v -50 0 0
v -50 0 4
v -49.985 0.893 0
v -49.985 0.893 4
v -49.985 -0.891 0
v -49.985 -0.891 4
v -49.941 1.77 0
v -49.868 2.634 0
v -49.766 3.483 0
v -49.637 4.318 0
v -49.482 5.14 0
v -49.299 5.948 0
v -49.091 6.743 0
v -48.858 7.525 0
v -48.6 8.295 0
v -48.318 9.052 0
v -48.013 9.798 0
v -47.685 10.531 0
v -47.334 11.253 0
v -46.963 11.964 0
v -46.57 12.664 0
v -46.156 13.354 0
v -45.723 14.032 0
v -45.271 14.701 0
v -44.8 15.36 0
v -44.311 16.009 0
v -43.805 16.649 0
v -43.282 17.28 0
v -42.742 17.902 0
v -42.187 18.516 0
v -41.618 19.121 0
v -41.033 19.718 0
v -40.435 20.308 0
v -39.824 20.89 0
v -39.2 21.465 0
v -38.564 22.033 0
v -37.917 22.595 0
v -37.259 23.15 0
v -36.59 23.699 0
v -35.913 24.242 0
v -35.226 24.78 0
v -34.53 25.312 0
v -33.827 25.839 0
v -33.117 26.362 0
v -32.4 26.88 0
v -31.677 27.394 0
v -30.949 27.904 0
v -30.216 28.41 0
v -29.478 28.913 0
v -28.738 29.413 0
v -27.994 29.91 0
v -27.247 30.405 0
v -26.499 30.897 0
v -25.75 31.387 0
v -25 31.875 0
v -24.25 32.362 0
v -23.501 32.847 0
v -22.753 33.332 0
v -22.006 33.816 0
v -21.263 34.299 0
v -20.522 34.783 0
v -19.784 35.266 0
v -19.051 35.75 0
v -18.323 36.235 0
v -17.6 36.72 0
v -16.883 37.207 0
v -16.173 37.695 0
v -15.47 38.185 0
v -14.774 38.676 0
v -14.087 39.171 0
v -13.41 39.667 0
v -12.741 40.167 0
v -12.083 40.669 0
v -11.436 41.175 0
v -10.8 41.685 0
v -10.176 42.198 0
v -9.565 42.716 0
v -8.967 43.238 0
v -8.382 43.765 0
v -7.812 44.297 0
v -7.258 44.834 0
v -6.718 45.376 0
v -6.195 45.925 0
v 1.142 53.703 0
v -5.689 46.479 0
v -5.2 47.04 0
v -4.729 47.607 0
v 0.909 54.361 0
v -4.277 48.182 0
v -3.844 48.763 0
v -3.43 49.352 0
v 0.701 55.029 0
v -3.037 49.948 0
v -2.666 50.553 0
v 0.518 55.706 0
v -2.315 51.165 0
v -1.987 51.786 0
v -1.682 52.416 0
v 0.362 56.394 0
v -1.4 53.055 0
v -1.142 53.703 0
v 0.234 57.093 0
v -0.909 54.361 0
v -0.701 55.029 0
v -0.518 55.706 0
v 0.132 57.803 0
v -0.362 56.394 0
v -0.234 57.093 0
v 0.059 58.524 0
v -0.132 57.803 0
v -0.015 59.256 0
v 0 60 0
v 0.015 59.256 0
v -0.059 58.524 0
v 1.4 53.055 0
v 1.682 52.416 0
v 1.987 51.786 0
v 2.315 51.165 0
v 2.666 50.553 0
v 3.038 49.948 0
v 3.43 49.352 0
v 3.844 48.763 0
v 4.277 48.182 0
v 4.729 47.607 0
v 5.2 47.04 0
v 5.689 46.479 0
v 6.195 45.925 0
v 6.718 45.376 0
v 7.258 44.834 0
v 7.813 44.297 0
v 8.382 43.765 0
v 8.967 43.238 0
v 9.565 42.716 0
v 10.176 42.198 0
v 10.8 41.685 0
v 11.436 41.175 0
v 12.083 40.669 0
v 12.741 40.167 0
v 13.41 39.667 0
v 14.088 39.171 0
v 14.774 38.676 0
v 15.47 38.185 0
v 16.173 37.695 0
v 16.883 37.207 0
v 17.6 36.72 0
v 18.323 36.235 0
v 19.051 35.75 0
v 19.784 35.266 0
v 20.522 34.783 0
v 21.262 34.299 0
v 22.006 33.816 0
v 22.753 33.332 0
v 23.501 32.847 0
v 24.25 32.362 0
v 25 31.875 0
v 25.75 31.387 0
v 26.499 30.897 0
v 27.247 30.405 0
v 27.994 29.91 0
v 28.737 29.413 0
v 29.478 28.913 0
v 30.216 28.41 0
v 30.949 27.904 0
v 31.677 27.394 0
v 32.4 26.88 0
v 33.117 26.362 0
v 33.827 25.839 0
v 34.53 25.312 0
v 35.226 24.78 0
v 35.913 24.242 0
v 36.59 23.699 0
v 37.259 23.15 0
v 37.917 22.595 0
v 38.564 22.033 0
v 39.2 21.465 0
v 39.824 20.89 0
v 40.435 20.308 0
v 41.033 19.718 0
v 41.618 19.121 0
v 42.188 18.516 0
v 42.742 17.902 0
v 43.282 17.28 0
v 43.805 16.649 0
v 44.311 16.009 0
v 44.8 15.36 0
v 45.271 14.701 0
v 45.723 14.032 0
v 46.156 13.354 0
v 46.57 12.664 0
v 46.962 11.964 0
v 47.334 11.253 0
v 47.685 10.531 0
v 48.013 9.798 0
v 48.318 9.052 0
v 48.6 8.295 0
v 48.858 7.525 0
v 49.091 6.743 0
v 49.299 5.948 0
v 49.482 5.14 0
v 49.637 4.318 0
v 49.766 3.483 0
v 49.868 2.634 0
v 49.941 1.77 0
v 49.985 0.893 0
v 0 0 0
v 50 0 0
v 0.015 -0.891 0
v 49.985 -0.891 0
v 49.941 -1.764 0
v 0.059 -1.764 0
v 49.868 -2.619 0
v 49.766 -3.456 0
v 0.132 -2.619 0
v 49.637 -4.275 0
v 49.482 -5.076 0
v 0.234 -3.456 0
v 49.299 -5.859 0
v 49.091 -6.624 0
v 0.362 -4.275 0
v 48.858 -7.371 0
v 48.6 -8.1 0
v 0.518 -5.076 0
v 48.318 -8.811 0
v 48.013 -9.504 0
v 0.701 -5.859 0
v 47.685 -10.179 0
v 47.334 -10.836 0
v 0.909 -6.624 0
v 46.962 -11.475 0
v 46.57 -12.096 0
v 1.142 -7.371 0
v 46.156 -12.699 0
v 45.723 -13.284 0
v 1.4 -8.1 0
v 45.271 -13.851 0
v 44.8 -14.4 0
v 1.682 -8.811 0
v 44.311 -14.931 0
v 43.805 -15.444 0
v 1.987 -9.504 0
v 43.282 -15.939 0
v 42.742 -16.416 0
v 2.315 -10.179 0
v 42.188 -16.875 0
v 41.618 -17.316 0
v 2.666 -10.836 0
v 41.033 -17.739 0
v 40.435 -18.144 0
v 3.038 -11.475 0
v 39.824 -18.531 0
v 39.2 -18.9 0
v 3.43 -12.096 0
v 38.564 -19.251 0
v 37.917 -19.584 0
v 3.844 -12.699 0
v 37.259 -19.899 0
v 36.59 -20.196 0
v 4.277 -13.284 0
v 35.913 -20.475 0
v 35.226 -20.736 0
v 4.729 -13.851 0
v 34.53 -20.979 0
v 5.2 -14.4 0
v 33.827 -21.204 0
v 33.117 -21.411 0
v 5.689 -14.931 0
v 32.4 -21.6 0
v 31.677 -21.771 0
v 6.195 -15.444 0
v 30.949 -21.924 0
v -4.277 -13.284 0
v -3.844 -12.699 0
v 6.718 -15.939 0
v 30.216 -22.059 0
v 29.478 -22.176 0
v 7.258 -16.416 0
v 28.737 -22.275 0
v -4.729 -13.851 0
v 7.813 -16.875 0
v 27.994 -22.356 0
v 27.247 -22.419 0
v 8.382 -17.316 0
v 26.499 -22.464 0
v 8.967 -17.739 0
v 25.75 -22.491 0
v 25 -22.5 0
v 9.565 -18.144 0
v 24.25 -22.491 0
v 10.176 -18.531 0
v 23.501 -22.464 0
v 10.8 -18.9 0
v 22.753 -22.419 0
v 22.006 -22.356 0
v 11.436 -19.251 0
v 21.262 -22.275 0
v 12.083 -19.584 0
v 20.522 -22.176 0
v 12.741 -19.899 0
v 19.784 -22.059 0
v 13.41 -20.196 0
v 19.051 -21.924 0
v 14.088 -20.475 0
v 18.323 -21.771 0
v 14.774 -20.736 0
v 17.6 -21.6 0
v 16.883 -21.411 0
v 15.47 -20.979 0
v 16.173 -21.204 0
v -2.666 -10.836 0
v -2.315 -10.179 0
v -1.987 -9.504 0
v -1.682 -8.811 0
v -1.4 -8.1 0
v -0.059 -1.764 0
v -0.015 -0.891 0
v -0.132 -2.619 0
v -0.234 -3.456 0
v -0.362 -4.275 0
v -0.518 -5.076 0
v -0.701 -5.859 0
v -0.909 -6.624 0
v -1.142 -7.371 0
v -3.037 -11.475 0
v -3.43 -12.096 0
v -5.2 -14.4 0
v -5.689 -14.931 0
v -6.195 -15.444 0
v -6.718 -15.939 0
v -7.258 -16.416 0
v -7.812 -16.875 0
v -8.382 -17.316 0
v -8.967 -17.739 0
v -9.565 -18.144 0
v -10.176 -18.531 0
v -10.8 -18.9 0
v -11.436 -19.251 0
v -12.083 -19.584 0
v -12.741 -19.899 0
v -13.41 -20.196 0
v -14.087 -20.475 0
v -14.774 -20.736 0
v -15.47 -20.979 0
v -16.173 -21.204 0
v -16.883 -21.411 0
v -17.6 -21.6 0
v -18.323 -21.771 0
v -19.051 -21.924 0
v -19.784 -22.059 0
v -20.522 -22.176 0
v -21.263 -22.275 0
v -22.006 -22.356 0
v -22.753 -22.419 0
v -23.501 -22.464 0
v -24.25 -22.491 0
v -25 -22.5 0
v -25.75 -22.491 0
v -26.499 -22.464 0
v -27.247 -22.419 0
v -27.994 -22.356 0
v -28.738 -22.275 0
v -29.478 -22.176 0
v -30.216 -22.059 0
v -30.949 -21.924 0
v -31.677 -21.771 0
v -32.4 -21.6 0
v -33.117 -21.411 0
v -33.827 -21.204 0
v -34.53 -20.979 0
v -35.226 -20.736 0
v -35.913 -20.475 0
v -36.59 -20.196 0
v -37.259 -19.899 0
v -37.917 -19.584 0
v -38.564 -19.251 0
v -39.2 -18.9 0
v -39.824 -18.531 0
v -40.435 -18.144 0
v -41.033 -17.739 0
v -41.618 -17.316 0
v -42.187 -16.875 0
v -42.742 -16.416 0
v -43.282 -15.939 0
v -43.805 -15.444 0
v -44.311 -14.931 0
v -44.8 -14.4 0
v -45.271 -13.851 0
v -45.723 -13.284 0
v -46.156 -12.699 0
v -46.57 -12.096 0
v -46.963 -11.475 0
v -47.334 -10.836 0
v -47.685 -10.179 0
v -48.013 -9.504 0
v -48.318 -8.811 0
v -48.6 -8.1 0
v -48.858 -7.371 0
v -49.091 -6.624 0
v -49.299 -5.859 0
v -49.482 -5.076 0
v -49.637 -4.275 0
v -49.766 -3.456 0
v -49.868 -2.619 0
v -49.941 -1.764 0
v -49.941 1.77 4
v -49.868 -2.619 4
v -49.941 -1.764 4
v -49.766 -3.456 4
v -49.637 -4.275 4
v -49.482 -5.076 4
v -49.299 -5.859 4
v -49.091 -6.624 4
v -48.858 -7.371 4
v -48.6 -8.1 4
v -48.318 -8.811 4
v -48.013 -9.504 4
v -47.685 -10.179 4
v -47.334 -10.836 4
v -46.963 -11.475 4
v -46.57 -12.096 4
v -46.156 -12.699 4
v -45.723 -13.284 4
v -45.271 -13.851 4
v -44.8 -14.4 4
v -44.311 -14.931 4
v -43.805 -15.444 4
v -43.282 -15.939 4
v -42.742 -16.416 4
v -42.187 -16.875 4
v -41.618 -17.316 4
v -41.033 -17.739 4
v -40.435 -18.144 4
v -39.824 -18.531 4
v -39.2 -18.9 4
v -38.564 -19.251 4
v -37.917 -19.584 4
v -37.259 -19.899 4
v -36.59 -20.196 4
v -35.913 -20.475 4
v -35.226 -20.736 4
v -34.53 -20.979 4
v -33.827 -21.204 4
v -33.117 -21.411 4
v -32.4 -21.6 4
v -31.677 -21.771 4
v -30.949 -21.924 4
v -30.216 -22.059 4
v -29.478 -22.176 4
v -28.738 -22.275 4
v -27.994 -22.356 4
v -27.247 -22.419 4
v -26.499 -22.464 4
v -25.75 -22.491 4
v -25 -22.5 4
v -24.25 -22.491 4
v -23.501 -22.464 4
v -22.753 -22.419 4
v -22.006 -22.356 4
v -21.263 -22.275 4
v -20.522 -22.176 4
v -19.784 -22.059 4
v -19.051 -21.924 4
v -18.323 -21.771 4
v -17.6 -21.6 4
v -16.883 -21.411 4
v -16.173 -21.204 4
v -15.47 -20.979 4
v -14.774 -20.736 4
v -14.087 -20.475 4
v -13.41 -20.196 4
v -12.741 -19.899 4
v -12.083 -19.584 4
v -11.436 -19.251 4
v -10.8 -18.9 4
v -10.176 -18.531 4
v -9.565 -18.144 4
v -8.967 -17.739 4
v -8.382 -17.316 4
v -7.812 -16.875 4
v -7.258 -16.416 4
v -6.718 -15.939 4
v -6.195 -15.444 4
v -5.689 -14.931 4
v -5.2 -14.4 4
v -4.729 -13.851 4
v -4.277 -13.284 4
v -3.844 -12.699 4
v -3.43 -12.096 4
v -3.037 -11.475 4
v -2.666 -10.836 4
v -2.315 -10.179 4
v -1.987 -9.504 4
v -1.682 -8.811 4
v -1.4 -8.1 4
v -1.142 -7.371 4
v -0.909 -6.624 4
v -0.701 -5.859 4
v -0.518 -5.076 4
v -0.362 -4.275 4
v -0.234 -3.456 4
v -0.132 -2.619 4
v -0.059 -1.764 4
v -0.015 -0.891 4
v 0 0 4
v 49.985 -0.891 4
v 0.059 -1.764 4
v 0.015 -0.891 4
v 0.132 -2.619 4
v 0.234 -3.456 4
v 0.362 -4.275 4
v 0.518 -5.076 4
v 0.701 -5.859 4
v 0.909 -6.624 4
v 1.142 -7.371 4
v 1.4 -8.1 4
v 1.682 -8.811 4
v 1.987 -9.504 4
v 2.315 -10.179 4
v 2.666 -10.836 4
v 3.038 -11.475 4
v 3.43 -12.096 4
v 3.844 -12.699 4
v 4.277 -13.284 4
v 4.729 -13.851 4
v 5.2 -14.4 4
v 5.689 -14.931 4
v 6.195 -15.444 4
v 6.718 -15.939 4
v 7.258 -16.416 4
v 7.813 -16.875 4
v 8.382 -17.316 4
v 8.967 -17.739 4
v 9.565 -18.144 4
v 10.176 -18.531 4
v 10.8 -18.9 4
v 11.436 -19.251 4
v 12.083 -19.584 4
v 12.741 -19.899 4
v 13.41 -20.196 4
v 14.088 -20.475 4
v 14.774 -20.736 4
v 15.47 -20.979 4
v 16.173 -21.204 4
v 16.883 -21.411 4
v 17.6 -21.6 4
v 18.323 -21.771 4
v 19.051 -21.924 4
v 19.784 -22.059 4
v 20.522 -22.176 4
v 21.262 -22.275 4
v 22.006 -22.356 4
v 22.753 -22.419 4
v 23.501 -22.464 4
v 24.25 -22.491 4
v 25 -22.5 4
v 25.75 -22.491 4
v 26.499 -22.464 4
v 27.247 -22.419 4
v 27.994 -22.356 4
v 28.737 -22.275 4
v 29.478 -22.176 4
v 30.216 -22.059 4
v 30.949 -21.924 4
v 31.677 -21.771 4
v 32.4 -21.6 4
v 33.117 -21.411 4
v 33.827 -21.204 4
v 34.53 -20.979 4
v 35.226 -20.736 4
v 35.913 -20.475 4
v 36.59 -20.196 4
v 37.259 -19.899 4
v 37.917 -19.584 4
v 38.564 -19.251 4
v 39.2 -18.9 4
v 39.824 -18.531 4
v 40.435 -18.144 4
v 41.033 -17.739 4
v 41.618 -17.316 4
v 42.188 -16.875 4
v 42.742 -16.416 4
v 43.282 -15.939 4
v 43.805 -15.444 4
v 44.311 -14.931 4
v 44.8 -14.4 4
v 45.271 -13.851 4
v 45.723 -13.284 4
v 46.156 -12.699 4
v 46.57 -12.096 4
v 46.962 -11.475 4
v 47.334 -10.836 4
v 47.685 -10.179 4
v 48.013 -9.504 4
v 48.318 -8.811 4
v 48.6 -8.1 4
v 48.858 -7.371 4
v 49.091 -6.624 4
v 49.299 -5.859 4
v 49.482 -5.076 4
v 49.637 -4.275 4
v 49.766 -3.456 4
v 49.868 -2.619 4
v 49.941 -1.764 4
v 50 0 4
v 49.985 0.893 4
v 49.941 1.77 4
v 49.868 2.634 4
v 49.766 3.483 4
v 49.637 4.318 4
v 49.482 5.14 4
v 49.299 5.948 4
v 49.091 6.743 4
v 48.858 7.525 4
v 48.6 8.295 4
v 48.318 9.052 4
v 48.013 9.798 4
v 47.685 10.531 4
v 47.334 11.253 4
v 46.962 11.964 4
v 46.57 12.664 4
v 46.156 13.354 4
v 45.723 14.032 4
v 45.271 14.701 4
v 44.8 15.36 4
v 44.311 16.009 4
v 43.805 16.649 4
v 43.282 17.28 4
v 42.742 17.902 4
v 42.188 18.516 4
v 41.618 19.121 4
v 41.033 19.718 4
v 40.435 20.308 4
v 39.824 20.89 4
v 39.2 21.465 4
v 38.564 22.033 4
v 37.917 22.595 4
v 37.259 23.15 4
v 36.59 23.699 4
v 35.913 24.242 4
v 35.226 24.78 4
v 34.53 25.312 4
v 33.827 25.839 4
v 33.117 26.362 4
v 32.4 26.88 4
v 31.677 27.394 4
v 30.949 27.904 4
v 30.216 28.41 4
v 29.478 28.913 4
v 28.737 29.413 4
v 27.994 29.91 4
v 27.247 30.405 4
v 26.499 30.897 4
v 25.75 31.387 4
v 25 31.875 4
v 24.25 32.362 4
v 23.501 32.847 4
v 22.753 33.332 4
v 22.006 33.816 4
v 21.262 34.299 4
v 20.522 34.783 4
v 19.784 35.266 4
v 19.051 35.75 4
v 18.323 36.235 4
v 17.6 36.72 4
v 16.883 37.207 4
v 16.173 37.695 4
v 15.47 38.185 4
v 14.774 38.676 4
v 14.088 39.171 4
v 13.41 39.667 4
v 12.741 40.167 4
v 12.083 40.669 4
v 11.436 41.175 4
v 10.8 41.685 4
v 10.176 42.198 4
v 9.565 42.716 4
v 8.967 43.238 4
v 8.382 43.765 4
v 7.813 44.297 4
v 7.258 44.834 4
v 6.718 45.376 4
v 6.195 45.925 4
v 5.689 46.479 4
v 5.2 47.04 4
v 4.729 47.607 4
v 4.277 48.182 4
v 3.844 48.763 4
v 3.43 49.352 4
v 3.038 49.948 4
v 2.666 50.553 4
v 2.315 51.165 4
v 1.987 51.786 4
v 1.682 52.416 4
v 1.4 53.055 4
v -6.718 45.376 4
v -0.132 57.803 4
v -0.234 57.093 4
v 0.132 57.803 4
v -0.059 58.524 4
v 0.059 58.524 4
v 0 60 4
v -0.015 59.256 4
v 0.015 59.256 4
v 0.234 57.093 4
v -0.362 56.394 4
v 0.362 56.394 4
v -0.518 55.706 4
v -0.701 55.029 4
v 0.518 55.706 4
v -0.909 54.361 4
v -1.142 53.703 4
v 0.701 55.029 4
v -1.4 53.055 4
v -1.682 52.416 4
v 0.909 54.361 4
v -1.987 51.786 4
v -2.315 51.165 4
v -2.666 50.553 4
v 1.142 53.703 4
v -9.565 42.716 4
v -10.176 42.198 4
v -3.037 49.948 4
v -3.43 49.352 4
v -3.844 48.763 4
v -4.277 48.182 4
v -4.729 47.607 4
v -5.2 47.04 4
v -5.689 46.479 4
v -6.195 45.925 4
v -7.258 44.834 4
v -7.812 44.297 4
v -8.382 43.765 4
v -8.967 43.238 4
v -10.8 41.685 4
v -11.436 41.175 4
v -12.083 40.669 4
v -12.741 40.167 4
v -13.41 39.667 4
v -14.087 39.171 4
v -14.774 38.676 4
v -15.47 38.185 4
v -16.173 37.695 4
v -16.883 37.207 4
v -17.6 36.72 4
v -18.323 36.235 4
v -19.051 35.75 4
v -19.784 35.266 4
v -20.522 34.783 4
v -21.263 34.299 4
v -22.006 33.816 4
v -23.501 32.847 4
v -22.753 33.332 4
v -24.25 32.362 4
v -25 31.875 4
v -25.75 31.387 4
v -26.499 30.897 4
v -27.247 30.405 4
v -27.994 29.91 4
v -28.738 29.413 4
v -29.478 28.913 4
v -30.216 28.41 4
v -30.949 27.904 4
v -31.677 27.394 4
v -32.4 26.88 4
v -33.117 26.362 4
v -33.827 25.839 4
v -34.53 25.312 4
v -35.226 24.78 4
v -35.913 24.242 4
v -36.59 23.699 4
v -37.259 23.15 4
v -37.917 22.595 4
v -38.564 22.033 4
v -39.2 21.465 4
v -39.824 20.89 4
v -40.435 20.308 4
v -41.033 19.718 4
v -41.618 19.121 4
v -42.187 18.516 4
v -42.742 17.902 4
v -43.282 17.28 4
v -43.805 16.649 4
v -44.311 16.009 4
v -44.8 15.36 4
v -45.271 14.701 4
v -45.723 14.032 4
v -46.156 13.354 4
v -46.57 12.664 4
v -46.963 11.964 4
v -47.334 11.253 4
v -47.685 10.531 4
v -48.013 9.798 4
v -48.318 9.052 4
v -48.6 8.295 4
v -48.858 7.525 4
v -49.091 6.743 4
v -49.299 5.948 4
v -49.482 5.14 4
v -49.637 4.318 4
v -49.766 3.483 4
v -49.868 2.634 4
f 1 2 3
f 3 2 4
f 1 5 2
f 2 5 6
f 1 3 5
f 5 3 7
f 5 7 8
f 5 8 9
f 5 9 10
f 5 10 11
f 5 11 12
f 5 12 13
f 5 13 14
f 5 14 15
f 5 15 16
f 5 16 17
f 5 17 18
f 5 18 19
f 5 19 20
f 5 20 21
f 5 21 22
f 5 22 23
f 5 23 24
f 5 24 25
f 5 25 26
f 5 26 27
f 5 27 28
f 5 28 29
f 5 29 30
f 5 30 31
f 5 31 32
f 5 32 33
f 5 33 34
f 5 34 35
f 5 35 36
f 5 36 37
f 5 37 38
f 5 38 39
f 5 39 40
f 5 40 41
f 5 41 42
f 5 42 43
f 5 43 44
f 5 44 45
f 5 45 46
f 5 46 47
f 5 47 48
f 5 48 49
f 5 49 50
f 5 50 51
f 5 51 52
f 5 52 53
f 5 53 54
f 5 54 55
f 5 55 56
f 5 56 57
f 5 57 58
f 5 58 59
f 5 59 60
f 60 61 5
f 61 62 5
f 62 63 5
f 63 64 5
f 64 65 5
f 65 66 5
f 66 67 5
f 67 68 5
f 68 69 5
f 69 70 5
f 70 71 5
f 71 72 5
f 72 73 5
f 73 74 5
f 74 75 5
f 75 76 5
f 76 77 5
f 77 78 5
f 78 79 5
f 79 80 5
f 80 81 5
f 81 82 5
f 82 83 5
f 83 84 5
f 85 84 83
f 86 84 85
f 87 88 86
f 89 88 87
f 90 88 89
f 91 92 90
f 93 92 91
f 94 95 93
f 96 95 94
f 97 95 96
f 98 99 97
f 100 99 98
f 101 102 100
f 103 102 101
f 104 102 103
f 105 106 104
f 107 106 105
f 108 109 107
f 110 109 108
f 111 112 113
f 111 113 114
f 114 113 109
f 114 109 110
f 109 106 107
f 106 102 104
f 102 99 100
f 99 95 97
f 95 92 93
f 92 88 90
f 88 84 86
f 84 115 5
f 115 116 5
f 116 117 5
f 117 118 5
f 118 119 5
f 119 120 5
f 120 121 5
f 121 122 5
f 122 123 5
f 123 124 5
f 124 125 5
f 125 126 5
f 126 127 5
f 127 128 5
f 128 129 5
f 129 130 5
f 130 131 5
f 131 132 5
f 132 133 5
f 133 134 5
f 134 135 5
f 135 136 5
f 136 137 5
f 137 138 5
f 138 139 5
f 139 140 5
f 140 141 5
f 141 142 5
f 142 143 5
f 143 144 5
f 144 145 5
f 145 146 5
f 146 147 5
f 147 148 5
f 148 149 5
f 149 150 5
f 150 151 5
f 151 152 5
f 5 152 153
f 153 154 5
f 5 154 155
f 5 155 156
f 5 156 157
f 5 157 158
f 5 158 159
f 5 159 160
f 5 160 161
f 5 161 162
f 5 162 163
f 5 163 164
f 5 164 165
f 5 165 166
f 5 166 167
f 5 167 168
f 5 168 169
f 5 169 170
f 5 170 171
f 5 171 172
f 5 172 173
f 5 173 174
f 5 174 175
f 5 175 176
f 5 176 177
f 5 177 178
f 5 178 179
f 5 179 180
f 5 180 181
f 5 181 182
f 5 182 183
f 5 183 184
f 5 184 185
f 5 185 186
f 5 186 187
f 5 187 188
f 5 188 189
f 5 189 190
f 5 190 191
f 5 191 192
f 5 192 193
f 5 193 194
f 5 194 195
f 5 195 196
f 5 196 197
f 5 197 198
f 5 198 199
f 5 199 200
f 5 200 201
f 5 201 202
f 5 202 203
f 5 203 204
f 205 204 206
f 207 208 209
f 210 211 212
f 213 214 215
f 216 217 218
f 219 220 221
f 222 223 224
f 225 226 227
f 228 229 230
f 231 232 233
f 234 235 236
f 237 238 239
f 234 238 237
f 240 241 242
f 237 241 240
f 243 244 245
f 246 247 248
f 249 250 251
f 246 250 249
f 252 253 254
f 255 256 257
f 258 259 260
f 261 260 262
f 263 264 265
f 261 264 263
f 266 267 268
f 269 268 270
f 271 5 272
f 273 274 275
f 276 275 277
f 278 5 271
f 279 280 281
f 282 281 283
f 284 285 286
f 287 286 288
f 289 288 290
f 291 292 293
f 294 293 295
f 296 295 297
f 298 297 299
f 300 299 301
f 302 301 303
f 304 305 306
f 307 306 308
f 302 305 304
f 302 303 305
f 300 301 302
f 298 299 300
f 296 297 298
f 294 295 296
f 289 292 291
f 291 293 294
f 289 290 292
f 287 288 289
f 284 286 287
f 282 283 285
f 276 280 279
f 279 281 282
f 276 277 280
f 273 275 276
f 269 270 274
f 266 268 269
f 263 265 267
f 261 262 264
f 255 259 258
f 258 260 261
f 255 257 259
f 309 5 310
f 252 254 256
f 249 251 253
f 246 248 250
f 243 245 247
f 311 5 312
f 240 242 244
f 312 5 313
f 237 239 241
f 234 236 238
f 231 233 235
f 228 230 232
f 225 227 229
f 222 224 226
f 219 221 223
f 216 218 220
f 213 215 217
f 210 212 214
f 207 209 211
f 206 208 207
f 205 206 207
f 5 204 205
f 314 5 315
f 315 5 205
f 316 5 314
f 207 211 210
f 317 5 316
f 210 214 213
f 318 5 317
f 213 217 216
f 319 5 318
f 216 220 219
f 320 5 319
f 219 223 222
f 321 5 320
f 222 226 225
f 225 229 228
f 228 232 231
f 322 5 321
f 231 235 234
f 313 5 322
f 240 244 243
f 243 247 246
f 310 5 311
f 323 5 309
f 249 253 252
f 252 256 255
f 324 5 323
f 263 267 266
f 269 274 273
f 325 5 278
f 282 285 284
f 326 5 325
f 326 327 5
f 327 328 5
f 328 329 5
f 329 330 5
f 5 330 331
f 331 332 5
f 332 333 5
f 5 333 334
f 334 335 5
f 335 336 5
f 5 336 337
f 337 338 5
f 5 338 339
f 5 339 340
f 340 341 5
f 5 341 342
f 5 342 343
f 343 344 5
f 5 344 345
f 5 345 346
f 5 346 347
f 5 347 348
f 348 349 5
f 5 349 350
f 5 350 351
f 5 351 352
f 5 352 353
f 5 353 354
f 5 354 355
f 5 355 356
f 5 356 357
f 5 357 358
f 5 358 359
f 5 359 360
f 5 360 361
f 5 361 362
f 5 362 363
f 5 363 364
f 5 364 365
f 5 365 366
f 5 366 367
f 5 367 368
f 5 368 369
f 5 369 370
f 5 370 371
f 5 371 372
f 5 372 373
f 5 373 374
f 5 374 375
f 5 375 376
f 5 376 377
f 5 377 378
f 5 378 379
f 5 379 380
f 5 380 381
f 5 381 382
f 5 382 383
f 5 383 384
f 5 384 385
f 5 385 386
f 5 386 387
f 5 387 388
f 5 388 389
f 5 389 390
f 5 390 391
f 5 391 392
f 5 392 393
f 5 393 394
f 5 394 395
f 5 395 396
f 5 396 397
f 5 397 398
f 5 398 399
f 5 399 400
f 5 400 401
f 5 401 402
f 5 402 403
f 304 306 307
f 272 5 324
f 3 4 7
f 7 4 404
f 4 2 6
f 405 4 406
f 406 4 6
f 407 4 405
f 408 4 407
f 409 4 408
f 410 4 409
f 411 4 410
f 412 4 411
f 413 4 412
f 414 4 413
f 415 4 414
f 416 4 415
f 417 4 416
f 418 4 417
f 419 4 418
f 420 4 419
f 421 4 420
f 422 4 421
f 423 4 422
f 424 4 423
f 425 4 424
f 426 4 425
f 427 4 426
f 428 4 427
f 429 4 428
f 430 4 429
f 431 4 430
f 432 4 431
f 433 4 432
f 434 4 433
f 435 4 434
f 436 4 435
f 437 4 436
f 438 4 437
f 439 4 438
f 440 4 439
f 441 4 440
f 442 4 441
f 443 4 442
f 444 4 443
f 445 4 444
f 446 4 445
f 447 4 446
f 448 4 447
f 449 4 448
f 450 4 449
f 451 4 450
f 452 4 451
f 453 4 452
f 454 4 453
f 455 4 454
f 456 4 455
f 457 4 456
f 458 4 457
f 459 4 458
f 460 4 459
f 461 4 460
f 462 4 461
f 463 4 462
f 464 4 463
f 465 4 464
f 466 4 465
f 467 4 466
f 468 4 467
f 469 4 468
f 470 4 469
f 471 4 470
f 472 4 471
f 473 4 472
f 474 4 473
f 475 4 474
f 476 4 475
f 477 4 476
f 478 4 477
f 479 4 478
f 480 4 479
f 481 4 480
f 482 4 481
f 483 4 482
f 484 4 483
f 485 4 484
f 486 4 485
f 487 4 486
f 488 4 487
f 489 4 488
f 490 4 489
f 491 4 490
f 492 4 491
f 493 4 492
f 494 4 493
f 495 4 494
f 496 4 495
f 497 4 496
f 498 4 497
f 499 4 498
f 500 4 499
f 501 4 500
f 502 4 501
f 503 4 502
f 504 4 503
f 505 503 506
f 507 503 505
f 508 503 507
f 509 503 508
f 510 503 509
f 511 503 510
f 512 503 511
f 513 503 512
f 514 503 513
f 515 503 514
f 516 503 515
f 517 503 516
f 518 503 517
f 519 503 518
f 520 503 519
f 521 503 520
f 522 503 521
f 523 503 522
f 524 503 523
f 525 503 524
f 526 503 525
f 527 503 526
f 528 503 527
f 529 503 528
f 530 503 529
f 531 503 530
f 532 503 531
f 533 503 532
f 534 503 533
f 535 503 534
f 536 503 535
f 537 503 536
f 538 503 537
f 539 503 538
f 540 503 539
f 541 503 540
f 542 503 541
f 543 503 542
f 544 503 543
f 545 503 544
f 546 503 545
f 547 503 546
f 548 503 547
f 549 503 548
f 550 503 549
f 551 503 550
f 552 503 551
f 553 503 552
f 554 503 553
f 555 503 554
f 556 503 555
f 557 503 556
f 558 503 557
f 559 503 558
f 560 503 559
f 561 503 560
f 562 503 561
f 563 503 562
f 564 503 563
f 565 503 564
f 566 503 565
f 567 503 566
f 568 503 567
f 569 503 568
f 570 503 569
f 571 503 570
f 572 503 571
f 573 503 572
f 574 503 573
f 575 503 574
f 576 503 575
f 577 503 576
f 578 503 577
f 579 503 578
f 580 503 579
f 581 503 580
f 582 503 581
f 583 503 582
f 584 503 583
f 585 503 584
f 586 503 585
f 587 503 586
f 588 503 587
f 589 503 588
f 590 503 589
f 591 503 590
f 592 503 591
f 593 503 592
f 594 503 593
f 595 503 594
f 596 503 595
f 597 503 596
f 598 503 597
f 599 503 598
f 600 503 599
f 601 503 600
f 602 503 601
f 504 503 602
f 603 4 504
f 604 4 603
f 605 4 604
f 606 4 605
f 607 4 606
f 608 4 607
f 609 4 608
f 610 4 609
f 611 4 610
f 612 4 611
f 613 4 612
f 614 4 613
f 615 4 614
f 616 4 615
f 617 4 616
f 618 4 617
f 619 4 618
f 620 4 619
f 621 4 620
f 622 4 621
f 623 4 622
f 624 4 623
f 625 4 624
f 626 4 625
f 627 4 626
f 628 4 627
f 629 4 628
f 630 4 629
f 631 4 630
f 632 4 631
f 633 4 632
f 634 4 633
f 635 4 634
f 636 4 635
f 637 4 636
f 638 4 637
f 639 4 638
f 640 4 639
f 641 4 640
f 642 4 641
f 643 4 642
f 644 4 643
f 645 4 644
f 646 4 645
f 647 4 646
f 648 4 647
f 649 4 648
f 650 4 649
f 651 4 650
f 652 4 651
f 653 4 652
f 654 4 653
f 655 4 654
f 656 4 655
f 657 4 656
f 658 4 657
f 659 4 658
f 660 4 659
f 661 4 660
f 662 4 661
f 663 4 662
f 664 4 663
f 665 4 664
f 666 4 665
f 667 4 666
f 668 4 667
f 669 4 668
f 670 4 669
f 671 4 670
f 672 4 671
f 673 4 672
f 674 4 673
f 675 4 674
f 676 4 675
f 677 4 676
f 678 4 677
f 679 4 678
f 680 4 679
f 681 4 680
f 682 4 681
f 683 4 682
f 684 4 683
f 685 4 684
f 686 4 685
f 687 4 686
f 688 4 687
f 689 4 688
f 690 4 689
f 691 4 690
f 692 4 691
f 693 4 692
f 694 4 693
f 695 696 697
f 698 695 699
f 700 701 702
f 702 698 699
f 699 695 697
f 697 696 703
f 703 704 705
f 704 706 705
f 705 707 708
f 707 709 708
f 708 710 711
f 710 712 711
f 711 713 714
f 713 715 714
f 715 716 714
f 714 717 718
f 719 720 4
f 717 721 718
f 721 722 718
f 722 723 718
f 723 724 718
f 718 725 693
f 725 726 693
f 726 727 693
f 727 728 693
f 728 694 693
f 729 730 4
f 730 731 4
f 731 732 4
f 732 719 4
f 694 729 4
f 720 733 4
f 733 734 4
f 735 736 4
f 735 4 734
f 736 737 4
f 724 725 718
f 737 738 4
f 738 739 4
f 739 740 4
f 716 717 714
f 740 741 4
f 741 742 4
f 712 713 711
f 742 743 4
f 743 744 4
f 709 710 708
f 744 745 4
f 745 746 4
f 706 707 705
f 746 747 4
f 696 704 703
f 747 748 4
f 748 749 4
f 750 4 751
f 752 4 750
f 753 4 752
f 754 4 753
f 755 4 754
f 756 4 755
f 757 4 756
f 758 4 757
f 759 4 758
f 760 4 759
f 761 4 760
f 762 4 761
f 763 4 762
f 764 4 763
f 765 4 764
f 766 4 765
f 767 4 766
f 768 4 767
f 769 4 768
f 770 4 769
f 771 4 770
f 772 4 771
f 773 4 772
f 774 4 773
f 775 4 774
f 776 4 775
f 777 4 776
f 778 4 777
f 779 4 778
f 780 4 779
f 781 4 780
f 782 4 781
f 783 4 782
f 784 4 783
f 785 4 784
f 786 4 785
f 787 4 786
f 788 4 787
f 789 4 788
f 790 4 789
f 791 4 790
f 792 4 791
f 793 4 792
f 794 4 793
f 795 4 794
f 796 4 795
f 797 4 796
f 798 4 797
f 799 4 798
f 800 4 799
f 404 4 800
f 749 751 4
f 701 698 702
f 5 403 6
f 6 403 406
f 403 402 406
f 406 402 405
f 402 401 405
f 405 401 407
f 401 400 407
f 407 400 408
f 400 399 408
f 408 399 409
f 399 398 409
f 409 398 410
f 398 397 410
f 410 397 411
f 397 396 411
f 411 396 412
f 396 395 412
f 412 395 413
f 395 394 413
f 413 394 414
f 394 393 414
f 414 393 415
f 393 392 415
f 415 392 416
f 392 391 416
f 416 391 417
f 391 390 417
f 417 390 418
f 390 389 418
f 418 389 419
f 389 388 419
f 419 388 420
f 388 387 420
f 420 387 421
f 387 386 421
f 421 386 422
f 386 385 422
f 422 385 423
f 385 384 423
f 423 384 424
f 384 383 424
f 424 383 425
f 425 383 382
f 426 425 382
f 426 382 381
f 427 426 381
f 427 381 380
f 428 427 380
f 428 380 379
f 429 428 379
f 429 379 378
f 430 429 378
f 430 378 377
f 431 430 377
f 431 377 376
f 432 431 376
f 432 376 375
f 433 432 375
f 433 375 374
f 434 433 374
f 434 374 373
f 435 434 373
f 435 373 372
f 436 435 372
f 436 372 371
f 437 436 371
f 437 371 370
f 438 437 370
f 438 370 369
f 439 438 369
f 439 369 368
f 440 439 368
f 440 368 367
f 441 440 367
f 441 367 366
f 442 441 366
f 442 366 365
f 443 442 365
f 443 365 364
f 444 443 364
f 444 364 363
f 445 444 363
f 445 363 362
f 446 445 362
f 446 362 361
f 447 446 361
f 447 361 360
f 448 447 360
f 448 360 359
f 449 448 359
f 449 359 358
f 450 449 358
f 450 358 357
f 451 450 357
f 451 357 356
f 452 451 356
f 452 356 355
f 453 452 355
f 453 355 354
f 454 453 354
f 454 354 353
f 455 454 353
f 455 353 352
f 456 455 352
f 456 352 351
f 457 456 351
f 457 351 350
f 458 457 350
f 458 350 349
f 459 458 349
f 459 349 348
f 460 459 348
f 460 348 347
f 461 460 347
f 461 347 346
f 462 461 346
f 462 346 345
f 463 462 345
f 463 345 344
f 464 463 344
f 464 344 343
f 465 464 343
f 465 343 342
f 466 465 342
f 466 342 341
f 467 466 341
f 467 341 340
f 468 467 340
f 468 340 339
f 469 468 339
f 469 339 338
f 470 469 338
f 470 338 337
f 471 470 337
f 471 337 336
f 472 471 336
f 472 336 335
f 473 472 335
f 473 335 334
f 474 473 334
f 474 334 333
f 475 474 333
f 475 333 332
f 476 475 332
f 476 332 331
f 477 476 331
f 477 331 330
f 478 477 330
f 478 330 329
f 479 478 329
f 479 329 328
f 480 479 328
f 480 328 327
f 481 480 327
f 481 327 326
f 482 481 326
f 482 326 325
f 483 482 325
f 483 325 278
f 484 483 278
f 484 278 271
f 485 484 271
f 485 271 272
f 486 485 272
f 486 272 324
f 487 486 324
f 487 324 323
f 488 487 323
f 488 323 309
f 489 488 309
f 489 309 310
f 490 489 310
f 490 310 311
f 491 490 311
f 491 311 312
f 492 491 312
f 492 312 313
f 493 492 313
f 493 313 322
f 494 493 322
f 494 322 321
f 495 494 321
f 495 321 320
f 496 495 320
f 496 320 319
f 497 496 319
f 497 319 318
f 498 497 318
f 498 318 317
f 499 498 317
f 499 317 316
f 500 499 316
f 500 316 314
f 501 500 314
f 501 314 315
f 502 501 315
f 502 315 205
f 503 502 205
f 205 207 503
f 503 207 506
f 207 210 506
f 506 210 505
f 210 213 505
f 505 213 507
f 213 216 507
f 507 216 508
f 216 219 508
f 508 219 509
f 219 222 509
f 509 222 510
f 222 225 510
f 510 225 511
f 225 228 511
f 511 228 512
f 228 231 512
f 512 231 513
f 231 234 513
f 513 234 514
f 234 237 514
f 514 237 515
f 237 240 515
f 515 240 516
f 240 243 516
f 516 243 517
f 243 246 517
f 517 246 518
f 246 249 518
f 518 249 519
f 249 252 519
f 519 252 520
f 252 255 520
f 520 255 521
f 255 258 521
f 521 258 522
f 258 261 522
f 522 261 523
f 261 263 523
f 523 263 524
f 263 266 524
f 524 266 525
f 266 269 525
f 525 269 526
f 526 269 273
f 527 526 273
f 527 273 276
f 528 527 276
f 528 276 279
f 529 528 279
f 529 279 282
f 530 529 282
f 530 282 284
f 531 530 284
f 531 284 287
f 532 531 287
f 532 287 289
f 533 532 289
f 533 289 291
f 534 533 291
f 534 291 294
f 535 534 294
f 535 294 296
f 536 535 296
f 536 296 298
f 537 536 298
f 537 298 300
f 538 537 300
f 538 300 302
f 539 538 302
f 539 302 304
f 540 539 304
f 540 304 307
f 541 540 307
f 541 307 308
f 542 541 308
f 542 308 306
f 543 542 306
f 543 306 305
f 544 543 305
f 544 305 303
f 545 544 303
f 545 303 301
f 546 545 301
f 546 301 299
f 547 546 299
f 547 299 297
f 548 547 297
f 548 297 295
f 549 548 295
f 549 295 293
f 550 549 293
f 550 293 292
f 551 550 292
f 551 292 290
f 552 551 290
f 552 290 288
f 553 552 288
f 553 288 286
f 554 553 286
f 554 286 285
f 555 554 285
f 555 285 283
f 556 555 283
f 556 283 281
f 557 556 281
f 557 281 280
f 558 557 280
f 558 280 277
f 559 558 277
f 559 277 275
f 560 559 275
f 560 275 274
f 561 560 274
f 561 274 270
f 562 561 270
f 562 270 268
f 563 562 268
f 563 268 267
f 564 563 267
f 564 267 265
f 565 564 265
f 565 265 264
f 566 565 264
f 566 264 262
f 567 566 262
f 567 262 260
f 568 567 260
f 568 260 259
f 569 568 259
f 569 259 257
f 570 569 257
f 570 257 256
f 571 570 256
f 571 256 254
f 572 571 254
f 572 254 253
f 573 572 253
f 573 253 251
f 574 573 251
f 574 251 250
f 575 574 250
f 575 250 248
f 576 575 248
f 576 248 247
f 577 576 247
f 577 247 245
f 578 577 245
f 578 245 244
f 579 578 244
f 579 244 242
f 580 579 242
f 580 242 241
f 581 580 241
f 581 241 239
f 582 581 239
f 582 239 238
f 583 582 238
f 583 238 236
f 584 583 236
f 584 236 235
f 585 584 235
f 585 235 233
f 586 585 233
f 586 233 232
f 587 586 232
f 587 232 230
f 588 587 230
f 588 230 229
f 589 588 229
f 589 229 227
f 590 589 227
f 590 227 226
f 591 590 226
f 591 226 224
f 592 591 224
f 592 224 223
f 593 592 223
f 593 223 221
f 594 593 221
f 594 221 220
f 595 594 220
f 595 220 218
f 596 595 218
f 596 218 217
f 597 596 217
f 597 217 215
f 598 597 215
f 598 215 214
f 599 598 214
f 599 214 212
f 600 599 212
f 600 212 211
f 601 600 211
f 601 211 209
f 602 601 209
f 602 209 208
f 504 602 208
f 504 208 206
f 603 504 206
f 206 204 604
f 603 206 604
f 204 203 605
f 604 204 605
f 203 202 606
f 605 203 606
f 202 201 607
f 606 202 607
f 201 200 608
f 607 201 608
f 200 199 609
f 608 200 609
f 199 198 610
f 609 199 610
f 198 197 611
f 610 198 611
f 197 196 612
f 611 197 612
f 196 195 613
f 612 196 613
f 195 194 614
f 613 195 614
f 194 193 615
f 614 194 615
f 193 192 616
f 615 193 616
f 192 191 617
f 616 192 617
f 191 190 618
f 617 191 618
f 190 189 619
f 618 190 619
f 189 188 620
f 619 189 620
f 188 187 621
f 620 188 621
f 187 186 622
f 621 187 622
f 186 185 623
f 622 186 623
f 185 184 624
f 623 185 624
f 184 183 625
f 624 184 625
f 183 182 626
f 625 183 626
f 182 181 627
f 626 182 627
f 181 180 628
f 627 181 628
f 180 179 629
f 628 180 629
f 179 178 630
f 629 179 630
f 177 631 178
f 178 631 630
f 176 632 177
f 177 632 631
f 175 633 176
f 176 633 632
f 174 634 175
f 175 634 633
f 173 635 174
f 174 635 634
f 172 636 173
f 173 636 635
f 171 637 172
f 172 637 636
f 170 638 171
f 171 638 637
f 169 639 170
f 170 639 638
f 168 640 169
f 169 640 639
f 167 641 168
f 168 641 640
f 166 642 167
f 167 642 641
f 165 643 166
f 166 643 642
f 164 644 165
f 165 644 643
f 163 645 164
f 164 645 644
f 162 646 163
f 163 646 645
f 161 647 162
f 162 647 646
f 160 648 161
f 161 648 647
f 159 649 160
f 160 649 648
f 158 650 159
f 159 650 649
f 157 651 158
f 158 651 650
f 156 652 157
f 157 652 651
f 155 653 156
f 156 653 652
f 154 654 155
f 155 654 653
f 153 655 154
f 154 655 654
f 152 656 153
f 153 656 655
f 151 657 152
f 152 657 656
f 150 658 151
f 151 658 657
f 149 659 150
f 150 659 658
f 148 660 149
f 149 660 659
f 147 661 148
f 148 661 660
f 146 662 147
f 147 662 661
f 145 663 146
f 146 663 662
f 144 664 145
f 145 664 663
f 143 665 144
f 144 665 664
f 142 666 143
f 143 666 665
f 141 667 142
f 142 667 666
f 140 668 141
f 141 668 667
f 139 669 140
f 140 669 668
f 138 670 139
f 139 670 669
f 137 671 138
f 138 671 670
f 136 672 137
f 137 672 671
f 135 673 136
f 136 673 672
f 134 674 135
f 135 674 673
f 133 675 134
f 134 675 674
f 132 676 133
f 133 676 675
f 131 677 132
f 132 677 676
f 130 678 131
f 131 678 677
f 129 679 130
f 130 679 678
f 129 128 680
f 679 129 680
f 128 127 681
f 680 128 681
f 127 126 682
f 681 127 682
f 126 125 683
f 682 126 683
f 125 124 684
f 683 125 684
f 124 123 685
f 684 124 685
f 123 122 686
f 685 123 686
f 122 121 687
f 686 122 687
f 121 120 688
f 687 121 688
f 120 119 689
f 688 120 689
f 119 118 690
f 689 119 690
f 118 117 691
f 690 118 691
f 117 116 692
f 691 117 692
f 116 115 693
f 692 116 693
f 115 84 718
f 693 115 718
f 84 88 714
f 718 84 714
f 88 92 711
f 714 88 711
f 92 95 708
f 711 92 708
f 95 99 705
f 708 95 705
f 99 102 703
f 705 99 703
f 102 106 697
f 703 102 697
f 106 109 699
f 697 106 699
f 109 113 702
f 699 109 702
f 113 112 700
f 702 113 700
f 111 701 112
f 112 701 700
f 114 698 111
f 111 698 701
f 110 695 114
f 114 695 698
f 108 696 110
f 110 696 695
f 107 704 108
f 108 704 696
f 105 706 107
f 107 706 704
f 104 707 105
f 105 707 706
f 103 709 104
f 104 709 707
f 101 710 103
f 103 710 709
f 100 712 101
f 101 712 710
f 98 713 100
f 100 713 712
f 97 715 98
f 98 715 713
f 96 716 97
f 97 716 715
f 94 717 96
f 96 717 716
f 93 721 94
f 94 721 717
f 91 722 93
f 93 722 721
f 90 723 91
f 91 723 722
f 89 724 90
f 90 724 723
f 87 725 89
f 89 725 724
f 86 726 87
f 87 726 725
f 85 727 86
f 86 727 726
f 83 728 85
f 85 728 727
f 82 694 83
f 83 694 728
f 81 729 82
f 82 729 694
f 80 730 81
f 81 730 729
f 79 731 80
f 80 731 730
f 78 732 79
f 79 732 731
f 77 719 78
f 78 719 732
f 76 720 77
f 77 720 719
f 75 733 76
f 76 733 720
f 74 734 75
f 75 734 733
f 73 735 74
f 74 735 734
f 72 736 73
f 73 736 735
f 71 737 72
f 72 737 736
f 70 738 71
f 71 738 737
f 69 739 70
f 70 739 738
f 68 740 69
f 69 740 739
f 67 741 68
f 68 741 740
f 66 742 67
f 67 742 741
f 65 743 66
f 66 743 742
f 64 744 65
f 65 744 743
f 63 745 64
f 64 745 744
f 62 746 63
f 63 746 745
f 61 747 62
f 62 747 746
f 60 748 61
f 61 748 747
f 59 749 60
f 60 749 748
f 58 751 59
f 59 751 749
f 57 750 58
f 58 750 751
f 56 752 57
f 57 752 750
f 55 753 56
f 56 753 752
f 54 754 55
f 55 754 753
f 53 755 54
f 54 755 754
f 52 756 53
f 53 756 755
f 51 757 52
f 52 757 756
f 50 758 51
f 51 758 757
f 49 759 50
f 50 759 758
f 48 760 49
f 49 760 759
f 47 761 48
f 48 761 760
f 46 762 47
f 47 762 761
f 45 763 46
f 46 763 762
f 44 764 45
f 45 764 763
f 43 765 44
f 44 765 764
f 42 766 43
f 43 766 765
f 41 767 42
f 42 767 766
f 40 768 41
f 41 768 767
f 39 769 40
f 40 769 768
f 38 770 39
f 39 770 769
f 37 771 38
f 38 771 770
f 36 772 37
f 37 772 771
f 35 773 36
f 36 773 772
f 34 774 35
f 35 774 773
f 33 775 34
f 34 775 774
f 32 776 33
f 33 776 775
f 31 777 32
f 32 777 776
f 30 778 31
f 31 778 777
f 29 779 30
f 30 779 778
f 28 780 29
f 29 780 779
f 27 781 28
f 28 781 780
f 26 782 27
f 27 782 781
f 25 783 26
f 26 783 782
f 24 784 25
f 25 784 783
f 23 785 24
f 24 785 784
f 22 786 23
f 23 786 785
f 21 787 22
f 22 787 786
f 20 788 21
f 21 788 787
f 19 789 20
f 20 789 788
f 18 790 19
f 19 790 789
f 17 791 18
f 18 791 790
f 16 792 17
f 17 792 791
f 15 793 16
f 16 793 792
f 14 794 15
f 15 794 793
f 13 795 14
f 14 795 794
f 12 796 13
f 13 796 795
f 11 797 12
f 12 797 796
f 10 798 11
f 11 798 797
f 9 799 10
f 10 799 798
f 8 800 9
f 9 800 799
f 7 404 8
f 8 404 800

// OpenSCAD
// file: bezier.scad
//=====================================
// This is public Domain Code
// Contributed by: William A Adams
// 11 May 2011
//=====================================
joinfactor = 0.125;

gSteps = 4;
gHeight = 4;


//=======================================
// Functions
// These are the 4 blending functions for a cubic bezier curve
//=======================================

/*
	Bernstein Basis Functions

	For Bezier curves, these functions give the weights per control point.
	
*/
function BEZ03(u) = pow((1-u), 3);
function BEZ13(u) = 3*u*(pow((1-u),2));
function BEZ23(u) = 3*(pow(u,2))*(1-u);
function BEZ33(u) = pow(u,3);

// Calculate a singe point along a cubic bezier curve
// Given a set of 4 control points, and a parameter 0 <= 'u' <= 1
// These functions will return the exact point on the curve
function PointOnBezCubic2D(p0, p1, p2, p3, u) = [
	BEZ03(u)*p0[0]+BEZ13(u)*p1[0]+BEZ23(u)*p2[0]+BEZ33(u)*p3[0],
	BEZ03(u)*p0[1]+BEZ13(u)*p1[1]+BEZ23(u)*p2[1]+BEZ33(u)*p3[1]];

function PointOnBezCubic3D(p0, p1, p2, p3, u) = [
	BEZ03(u)*p0[0]+BEZ13(u)*p1[0]+BEZ23(u)*p2[0]+BEZ33(u)*p3[0],
	BEZ03(u)*p0[1]+BEZ13(u)*p1[1]+BEZ23(u)*p2[1]+BEZ33(u)*p3[1],
	BEZ03(u)*p0[2]+BEZ13(u)*p1[2]+BEZ23(u)*p2[2]+BEZ33(u)*p3[2]];

//=======================================
// Modules
//=======================================
// This function will extrude a bezier solid from a bezier curve
// It is a straight up prism
// c - ControlPoints
//
module BezCubicFillet(c, focalPoint, steps=gSteps, height=gHeight)
{
	for(step = [steps:1])
	{
		linear_extrude(height = height, convexity = 10) 
		polygon(
			points=[
				focalPoint,
				PointOnBezCubic2D(c[0], c[1], c[2],c[3], step/steps),
				PointOnBezCubic2D(c[0], c[1], c[2],c[3], (step-1)/steps)],
			paths=[[0,1,2,0]]
		);
	}
}

module BezCubicFilletColored(c, focalPoint, steps=gSteps, height=gHeight, colors)
{
	for(step = [steps:1])
	{
		color(PointOnBezCubic3D(colors[0], colors[1], colors[2], colors[3], step/steps))
		linear_extrude(height = height, convexity = 10) 
		polygon(
			points=[
				focalPoint,
				PointOnBezCubic2D(c[0], c[1], c[2],c[3], step/steps),
				PointOnBezCubic2D(c[0], c[1], c[2],c[3], (step-1)/steps)],
			paths=[[0,1,2,0]]
		);
	}
}


module BezCubicRibbon(c1, c2, steps=gSteps, height=gHeight, colors=[[1,0,0],[1,1,0],[0,1,1],[0,0,1]])
{
	for (step=[0:steps-1])
	{
		color(PointOnBezCubic3D(colors[0], colors[1], colors[2], colors[3], step/steps))
		linear_extrude(height = height, convexity = 10) 
		polygon(
			points=[
				PointOnBezCubic2D(c1[0], c1[1], c1[2],c1[3], step/steps),
				PointOnBezCubic2D(c2[0], c2[1], c2[2],c2[3], (step)/steps),
				PointOnBezCubic2D(c2[0], c2[1], c2[2],c2[3], (step+1)/steps),
				PointOnBezCubic2D(c1[0], c1[1], c1[2],c1[3], (step+1)/steps)],
			paths=[[0,1,2,3]]
		);

	}
}

module BezCubicRibbonRotate(c1, c2, steps=gSteps, height=gHeight, colors=[[1,0,0],[1,1,0],[0,1,1],[0,0,1]])
{
	for (step=[0:steps-1])
	{
		color(PointOnBezCubic3D(colors[0], colors[1], colors[2], colors[3], step/steps))
		rotate_extrude(convexity=10) 
		polygon(
			points=[
				PointOnBezCubic2D(c1[0], c1[1], c1[2],c1[3], step/steps),
				PointOnBezCubic2D(c2[0], c2[1], c2[2],c2[3], (step)/steps),
				PointOnBezCubic2D(c2[0], c2[1], c2[2],c2[3], (step+1)/steps),
				PointOnBezCubic2D(c1[0], c1[1], c1[2],c1[3], (step+1)/steps)],
			paths=[[0,1,2,3]]
		);
	}
}
// main file
include <bezier.scad>

// Borrowed from the tutorial found here:
// http://www.local-guru.net/blog/2010/09/19/pulsating-heart-made-from-bezier-curves-in-processing

//beginShape();
//vertex(150,150);
//bezierVertex( 150,120, 100,120, 100, 150);
//bezierVertex( 100,180, 150,185, 150, 210 );
//bezierVertex( 150,185, 200,180, 200, 150 );  
//bezierVertex( 200,120, 150,120, 150, 150 );  
//endShape();



gDemoSteps = 100;
gDemoHeight = 4;

translate([-150, -150, 0])
DrawHeart();

module DrawHeart()
{
	BezCubicFilletColored( [[150, 150],[150,120],[100,120],[100,150]], [150,150], 
	gDemoSteps, gDemoHeight, [[1,0,0],[1,0,0],[1,1,1],[1,0,0]]);
	
	BezCubicFilletColored( [[100, 150],[100,180],[150,185],[150,210]], [150,150], 
	gDemoSteps, gDemoHeight, [[1,0,0],[1,0,0],[1,1,1],[1,0,0]]);
	
	BezCubicFilletColored( [[150, 210],[150,185],[200,180],[200,150]], [150,150], 
	gDemoSteps, gDemoHeight,  [[1,0,0],[1,0,0],[1,1,1],[1,0,0]]);
	
	BezCubicFilletColored( [[200, 150],[200,120],[150,120],[150,150]], [150,150], 
	gDemoSteps, gDemoHeight,  [[1,0,0],[1,0,0],[1,1,1],[1,0,0]]);
}
